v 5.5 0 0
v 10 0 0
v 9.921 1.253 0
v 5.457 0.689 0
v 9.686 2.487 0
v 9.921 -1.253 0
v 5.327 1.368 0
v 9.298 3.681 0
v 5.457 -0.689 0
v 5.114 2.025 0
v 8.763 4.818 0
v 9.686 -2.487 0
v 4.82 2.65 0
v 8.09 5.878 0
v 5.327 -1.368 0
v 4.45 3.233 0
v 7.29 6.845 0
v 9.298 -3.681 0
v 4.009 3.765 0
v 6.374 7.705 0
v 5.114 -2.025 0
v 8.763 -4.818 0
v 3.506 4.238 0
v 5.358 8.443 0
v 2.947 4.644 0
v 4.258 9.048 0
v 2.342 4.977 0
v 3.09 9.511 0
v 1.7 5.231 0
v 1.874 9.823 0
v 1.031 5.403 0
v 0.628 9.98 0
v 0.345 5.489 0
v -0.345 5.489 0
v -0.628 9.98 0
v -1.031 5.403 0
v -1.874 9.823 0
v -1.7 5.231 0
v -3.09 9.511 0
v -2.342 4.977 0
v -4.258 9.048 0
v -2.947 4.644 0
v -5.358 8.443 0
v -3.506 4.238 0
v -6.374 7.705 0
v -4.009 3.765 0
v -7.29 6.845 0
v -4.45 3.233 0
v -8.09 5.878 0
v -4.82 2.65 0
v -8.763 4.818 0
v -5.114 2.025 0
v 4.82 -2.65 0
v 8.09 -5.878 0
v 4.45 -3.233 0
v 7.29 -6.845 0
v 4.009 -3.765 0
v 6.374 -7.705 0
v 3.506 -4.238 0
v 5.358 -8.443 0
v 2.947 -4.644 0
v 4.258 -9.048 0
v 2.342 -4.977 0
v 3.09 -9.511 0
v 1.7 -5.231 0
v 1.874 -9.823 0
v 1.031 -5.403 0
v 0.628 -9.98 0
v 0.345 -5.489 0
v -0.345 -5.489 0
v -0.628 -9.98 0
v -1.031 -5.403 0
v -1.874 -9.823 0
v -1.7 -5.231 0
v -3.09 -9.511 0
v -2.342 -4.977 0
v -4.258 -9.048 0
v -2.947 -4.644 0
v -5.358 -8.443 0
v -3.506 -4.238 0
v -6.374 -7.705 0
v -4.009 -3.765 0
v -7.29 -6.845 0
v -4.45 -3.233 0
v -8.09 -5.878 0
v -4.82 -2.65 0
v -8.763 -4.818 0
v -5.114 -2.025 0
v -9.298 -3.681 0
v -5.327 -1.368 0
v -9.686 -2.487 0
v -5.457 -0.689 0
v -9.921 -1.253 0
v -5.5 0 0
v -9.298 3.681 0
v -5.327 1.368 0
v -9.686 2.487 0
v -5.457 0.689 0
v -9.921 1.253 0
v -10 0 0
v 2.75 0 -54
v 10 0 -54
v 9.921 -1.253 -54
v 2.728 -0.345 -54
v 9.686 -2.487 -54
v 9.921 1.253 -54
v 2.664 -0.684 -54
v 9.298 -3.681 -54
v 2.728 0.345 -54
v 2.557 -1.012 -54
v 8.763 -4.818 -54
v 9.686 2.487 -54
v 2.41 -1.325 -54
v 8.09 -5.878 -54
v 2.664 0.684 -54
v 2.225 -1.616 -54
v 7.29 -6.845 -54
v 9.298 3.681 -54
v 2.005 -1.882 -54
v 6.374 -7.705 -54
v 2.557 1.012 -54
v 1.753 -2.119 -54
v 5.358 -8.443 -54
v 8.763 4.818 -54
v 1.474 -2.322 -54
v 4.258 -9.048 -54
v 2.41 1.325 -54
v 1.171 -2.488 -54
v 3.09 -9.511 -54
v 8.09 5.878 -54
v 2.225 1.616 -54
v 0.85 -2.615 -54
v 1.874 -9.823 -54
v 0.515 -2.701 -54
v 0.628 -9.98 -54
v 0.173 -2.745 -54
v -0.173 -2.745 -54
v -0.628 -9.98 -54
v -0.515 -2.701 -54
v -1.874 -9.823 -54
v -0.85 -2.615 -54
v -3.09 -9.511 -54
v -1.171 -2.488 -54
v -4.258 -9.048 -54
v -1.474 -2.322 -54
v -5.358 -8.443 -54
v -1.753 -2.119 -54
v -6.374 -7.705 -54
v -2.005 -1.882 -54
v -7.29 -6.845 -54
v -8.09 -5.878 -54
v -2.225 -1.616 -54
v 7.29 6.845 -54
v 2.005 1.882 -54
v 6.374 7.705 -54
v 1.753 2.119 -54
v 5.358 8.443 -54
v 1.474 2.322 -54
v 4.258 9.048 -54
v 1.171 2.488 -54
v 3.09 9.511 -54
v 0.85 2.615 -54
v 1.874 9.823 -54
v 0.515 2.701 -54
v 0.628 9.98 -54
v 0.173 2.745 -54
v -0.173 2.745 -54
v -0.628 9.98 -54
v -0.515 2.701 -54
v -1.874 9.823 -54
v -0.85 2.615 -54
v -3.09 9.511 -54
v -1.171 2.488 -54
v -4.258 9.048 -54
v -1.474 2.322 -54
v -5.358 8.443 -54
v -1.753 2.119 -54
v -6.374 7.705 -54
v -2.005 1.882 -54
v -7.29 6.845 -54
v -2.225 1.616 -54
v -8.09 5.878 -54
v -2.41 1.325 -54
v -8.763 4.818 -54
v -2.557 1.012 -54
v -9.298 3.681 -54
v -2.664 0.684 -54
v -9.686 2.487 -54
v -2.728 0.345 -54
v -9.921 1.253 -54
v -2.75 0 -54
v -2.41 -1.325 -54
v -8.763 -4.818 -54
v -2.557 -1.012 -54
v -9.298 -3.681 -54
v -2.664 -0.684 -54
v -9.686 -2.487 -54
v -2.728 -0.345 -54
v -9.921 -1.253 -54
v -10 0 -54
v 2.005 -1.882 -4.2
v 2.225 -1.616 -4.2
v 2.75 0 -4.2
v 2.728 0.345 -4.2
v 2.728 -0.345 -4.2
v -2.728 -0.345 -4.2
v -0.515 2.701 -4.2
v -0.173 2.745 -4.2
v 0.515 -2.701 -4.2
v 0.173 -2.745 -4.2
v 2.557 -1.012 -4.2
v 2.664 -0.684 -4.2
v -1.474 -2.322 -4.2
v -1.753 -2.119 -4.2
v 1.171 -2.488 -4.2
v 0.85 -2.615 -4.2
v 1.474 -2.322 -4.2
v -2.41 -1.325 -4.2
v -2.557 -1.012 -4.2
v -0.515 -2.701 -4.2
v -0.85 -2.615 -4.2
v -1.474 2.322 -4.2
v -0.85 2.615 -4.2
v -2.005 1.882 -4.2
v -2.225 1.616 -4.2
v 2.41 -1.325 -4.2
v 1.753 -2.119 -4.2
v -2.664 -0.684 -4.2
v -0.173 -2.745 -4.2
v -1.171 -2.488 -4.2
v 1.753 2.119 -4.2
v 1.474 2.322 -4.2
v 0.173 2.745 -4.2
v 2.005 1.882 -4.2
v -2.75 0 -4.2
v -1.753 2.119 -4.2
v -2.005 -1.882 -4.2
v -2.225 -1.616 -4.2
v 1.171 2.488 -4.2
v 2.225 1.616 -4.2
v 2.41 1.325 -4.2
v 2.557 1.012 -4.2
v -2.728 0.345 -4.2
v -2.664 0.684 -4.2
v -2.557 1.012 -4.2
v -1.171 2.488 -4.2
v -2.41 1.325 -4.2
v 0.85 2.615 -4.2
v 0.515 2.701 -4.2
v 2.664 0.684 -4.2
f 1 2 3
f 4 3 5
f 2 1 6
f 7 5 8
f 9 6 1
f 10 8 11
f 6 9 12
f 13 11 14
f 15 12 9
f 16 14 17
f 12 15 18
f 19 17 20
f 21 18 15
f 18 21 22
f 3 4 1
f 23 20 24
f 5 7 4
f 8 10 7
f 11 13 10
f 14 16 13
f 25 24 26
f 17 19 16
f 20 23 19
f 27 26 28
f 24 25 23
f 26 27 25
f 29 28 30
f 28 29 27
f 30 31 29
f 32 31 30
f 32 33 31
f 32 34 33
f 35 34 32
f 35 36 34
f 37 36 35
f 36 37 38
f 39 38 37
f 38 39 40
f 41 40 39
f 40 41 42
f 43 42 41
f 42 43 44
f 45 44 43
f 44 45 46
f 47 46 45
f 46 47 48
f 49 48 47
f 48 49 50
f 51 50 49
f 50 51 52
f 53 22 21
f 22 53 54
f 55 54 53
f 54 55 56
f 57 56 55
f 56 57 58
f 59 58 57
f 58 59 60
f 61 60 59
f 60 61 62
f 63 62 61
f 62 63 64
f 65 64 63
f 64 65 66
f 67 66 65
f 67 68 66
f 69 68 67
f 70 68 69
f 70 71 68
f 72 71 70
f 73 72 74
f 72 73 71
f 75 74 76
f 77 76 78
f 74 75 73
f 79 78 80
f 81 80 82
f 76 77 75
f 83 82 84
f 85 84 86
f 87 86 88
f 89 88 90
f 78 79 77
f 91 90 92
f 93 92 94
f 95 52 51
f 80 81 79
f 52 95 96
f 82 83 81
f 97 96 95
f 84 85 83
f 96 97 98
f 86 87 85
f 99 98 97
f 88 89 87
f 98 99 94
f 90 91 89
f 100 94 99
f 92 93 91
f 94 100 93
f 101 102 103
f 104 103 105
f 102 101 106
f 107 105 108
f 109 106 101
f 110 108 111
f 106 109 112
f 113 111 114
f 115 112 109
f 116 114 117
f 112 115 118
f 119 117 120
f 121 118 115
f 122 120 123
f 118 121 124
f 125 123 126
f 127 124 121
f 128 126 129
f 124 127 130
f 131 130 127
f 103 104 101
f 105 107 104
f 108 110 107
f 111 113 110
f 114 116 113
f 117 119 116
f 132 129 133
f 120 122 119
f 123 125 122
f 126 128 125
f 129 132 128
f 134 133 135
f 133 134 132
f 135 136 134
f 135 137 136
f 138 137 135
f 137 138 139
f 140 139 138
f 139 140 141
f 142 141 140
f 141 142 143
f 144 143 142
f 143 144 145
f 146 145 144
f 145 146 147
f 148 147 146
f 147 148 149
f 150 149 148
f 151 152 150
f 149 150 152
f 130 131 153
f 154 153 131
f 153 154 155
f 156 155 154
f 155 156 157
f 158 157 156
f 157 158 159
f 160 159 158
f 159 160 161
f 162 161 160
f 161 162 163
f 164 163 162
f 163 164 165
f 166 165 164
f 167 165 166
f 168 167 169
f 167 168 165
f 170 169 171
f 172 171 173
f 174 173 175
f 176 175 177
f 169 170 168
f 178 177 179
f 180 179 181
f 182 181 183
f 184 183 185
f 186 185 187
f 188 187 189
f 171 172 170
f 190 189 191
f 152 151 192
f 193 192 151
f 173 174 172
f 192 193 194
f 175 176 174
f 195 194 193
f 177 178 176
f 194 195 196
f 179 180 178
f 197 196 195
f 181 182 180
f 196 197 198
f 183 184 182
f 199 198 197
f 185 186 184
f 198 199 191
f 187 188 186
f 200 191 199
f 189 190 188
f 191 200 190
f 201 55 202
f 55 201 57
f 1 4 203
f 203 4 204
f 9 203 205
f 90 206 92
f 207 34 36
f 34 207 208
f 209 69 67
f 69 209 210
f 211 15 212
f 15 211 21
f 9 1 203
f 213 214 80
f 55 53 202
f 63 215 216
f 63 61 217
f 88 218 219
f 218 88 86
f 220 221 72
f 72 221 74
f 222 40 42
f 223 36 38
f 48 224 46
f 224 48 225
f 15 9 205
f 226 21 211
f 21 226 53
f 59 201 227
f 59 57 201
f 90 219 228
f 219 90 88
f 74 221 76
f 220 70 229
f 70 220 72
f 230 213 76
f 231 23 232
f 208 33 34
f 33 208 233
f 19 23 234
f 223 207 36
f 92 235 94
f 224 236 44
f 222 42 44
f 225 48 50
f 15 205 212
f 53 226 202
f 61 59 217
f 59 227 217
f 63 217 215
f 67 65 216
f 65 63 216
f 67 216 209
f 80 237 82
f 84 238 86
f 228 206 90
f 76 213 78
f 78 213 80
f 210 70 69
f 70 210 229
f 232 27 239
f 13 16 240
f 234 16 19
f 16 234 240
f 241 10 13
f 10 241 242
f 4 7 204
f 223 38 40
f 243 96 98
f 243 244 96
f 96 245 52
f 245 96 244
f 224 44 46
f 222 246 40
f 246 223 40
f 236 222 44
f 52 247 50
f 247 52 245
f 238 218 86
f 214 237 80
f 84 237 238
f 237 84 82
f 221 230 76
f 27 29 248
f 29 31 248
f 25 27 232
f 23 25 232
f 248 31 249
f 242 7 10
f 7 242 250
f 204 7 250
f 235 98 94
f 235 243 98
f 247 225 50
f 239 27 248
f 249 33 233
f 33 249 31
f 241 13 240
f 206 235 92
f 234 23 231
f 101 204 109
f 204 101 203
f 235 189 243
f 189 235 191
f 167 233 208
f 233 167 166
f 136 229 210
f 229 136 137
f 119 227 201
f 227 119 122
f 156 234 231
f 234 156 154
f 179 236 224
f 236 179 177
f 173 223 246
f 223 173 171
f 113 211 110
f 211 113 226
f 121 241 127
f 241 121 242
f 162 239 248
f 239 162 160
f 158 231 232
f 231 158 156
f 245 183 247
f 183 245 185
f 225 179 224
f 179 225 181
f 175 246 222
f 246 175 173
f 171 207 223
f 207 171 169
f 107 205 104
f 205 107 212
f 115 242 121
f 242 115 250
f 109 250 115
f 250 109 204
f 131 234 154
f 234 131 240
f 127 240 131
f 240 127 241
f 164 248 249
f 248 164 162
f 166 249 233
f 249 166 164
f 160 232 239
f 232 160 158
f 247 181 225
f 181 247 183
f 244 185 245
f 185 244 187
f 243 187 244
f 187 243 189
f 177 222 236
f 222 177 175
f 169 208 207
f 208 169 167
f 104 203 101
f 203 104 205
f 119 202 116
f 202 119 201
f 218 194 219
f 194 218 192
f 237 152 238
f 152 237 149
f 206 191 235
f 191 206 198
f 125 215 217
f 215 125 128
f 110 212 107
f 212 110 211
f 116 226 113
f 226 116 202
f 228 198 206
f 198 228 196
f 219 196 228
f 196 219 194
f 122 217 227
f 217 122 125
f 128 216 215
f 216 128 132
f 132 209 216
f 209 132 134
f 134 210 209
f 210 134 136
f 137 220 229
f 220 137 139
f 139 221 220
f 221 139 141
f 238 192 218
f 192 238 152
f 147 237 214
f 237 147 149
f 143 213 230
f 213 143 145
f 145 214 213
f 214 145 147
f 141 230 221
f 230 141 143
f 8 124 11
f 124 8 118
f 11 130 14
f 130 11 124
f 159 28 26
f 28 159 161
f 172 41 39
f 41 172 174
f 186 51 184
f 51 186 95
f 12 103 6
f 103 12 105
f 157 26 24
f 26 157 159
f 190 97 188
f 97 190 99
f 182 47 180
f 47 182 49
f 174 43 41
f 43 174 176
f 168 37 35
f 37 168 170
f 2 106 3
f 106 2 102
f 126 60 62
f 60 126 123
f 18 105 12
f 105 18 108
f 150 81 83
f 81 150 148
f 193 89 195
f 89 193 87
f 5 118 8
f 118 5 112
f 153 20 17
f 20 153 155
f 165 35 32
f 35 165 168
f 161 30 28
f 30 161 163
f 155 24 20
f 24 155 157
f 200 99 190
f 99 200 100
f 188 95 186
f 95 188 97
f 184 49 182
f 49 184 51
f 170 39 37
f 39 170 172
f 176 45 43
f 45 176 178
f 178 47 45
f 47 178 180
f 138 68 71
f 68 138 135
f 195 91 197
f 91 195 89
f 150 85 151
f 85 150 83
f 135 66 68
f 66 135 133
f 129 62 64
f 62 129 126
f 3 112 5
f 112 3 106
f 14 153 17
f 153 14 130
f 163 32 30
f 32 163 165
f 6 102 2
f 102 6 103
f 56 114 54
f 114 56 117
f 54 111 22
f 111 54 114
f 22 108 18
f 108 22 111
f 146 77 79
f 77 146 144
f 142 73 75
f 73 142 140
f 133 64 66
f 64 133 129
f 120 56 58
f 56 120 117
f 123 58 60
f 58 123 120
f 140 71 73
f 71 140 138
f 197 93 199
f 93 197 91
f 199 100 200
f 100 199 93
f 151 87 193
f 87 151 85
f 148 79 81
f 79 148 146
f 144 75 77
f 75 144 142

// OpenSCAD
$fn = 50;


difference() {
	union() {
		translate(v = [0, 0, -54.0000000000]) {
			cylinder(h = 54, r = 10.0000000000);
		}
		cylinder(h = 0, r = 19.0000000000);
	}
	union() {
		translate(v = [0, 0, 0]) {
			rotate(a = [0, 0, 0]) {
				difference() {
					union() {
						#translate(v = [0, 0, -54.0000000000]) {
							cylinder(h = 54, r = 2.2500000000);
						}
						#translate(v = [0, 0, -4.2000000000]) {
							cylinder(h = 4.2000000000, r = 10.0000000000, r1 = 2.7500000000, r2 = 5.5000000000);
						}
						#translate(v = [0, 0, -54.0000000000]) {
							cylinder(h = 54, r = 2.7500000000);
						}
						#translate(v = [0, 0, -54.0000000000]) {
							cylinder(h = 54, r = 2.2500000000);
						}
					}
					union();
				}
			}
		}
	}
}
